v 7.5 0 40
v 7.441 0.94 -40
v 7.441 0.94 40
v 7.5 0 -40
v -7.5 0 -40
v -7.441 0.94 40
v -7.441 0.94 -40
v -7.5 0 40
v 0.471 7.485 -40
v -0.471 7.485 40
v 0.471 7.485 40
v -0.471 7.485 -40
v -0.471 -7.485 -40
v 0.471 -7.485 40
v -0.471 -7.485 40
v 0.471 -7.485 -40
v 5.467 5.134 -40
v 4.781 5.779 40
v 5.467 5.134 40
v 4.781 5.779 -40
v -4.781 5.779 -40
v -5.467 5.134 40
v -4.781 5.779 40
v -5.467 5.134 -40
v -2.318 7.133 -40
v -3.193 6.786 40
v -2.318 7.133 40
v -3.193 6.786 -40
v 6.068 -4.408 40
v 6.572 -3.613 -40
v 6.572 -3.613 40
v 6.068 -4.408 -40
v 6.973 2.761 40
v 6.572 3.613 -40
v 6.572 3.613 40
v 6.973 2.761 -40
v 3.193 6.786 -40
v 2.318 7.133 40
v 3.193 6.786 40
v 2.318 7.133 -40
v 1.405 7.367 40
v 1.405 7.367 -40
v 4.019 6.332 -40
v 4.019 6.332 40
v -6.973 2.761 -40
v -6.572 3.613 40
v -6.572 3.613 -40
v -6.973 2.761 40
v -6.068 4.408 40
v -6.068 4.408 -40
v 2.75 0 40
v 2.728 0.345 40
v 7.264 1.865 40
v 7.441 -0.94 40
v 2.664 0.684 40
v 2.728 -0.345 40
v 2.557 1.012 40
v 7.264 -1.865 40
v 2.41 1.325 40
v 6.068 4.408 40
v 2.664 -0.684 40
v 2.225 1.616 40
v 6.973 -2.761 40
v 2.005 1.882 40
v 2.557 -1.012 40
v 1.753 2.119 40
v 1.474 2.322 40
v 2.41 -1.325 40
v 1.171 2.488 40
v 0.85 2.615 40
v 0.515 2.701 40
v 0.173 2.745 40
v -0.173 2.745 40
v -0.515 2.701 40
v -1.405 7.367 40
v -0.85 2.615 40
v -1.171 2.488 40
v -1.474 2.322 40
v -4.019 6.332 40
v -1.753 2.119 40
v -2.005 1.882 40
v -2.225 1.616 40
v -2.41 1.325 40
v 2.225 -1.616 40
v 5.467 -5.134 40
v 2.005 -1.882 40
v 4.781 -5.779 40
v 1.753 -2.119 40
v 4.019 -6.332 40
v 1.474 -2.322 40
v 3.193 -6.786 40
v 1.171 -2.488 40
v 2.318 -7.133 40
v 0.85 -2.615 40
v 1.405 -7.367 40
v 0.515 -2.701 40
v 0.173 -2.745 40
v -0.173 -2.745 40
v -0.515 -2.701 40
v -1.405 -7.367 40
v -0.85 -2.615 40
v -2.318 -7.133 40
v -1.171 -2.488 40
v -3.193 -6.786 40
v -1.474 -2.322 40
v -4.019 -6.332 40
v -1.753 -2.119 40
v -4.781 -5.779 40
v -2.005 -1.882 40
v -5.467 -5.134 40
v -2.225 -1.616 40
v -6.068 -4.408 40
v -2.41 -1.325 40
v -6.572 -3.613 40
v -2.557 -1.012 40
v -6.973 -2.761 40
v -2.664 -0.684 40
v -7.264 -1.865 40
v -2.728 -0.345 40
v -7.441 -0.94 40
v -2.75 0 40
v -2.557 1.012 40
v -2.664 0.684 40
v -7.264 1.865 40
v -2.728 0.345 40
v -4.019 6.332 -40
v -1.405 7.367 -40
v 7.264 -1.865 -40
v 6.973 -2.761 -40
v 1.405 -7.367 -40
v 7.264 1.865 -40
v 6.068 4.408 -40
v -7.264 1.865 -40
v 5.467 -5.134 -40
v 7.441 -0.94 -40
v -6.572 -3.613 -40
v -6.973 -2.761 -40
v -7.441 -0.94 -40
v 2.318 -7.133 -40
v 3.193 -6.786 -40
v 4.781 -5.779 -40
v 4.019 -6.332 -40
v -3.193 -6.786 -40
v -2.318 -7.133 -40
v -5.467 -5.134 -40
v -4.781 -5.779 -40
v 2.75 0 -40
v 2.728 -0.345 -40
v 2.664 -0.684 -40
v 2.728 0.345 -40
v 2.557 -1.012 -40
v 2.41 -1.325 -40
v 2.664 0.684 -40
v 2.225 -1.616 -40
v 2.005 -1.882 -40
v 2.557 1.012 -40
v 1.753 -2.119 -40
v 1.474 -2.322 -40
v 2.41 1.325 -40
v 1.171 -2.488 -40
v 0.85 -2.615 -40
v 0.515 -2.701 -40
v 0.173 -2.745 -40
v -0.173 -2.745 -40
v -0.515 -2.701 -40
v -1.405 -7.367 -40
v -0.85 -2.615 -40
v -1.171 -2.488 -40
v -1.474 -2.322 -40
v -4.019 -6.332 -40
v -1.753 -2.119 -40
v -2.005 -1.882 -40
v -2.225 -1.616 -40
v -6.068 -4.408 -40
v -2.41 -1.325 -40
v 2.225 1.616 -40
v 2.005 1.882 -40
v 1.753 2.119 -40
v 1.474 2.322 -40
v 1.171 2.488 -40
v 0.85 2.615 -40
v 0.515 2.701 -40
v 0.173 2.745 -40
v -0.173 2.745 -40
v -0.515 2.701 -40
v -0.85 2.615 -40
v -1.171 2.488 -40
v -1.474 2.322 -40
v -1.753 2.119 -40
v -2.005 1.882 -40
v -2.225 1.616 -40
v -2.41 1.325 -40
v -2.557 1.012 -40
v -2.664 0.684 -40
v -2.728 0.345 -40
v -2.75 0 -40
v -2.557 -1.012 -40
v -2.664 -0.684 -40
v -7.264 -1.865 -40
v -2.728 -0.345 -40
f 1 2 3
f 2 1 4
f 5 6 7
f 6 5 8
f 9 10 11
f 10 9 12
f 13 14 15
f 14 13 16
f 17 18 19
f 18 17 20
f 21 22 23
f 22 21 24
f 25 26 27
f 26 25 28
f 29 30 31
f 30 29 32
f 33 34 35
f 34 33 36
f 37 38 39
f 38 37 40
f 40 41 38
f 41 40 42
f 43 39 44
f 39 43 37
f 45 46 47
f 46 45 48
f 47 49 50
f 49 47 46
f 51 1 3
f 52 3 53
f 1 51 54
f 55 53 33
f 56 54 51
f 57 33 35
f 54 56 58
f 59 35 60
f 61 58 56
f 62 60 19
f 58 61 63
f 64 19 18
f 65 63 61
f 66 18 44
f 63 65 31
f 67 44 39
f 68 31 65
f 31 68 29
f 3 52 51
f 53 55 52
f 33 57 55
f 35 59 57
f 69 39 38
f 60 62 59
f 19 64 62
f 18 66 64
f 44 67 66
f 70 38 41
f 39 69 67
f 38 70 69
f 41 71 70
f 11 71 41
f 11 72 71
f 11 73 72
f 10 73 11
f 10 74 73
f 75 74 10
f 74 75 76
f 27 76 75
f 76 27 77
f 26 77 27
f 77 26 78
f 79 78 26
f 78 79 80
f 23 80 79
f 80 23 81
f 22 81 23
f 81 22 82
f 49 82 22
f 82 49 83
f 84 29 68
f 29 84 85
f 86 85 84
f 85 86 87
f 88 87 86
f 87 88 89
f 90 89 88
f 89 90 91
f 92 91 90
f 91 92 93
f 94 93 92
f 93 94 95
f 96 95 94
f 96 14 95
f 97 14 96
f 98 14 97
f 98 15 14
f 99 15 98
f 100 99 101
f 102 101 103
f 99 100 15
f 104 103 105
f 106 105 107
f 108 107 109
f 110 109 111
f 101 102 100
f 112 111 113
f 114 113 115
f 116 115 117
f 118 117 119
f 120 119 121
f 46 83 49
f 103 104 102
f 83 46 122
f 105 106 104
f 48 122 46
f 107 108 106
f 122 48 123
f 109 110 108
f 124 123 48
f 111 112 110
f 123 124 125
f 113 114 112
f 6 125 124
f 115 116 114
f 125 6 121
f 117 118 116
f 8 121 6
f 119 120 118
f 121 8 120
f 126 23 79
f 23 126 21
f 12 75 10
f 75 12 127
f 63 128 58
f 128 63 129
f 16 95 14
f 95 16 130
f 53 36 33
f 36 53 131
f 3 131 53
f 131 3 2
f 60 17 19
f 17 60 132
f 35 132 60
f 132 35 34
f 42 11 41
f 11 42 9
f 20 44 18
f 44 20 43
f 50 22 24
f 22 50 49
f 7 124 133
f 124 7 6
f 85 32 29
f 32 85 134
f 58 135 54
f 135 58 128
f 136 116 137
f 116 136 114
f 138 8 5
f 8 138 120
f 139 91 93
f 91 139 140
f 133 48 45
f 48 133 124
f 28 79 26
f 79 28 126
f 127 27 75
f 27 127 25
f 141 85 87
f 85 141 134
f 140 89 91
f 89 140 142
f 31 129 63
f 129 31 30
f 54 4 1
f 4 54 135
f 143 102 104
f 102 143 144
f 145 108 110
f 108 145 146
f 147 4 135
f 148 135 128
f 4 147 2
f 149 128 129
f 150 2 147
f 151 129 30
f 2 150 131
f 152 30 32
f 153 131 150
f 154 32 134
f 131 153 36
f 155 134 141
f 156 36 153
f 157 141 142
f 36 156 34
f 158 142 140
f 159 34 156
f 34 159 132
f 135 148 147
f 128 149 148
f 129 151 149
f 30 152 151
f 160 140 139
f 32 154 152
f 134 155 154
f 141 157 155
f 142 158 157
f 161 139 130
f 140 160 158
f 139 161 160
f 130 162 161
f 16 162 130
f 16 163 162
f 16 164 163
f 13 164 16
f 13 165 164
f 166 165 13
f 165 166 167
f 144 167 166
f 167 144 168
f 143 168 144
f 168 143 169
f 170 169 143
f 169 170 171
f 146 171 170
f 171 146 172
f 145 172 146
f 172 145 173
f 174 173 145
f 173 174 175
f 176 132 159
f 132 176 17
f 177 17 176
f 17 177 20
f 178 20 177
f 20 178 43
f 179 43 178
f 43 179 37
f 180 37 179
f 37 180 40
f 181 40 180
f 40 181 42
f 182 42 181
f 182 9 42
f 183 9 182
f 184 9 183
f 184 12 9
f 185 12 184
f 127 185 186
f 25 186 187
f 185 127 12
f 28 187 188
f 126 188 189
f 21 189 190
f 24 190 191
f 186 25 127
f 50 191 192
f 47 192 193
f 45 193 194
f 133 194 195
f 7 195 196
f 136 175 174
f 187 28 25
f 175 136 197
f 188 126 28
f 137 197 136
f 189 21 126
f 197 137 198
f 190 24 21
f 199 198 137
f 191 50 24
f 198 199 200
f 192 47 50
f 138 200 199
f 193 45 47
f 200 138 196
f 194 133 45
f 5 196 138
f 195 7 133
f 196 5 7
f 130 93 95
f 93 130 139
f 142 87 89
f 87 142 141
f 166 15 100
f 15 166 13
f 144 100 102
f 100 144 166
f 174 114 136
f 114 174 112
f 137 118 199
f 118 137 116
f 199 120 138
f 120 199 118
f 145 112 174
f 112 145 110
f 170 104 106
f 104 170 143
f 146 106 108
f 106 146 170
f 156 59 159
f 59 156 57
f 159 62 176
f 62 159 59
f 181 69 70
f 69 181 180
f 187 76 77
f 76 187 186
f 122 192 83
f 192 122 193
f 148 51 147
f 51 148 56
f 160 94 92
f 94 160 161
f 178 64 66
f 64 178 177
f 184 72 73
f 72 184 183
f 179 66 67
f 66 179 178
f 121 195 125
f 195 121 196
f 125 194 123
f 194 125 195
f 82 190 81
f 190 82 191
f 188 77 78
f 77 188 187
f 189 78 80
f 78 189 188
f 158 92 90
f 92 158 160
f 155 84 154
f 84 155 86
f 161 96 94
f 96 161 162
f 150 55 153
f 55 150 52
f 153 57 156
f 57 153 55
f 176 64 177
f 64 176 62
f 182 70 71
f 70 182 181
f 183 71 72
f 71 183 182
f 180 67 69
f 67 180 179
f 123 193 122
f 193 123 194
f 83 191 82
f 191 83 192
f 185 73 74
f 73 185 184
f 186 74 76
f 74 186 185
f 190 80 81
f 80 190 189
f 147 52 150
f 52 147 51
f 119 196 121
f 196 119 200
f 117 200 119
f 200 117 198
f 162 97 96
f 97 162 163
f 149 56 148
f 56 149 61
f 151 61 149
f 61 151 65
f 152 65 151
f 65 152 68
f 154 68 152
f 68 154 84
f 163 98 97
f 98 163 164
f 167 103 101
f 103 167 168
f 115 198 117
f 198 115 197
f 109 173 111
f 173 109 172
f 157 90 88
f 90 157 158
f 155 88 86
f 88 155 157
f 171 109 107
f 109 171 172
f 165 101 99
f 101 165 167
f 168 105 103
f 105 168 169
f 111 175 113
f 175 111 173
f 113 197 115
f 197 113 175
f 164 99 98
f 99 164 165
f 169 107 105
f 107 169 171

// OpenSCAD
$fn = 50;


difference() {
	union() {
		translate(v = [0, 0, -40.0000000000]) {
			cylinder(h = 80, r = 7.5000000000);
		}
	}
	union() {
		translate(v = [0, 0, -100.0000000000]) {
			cylinder(h = 200, r = 2.7500000000);
		}
	}
}
